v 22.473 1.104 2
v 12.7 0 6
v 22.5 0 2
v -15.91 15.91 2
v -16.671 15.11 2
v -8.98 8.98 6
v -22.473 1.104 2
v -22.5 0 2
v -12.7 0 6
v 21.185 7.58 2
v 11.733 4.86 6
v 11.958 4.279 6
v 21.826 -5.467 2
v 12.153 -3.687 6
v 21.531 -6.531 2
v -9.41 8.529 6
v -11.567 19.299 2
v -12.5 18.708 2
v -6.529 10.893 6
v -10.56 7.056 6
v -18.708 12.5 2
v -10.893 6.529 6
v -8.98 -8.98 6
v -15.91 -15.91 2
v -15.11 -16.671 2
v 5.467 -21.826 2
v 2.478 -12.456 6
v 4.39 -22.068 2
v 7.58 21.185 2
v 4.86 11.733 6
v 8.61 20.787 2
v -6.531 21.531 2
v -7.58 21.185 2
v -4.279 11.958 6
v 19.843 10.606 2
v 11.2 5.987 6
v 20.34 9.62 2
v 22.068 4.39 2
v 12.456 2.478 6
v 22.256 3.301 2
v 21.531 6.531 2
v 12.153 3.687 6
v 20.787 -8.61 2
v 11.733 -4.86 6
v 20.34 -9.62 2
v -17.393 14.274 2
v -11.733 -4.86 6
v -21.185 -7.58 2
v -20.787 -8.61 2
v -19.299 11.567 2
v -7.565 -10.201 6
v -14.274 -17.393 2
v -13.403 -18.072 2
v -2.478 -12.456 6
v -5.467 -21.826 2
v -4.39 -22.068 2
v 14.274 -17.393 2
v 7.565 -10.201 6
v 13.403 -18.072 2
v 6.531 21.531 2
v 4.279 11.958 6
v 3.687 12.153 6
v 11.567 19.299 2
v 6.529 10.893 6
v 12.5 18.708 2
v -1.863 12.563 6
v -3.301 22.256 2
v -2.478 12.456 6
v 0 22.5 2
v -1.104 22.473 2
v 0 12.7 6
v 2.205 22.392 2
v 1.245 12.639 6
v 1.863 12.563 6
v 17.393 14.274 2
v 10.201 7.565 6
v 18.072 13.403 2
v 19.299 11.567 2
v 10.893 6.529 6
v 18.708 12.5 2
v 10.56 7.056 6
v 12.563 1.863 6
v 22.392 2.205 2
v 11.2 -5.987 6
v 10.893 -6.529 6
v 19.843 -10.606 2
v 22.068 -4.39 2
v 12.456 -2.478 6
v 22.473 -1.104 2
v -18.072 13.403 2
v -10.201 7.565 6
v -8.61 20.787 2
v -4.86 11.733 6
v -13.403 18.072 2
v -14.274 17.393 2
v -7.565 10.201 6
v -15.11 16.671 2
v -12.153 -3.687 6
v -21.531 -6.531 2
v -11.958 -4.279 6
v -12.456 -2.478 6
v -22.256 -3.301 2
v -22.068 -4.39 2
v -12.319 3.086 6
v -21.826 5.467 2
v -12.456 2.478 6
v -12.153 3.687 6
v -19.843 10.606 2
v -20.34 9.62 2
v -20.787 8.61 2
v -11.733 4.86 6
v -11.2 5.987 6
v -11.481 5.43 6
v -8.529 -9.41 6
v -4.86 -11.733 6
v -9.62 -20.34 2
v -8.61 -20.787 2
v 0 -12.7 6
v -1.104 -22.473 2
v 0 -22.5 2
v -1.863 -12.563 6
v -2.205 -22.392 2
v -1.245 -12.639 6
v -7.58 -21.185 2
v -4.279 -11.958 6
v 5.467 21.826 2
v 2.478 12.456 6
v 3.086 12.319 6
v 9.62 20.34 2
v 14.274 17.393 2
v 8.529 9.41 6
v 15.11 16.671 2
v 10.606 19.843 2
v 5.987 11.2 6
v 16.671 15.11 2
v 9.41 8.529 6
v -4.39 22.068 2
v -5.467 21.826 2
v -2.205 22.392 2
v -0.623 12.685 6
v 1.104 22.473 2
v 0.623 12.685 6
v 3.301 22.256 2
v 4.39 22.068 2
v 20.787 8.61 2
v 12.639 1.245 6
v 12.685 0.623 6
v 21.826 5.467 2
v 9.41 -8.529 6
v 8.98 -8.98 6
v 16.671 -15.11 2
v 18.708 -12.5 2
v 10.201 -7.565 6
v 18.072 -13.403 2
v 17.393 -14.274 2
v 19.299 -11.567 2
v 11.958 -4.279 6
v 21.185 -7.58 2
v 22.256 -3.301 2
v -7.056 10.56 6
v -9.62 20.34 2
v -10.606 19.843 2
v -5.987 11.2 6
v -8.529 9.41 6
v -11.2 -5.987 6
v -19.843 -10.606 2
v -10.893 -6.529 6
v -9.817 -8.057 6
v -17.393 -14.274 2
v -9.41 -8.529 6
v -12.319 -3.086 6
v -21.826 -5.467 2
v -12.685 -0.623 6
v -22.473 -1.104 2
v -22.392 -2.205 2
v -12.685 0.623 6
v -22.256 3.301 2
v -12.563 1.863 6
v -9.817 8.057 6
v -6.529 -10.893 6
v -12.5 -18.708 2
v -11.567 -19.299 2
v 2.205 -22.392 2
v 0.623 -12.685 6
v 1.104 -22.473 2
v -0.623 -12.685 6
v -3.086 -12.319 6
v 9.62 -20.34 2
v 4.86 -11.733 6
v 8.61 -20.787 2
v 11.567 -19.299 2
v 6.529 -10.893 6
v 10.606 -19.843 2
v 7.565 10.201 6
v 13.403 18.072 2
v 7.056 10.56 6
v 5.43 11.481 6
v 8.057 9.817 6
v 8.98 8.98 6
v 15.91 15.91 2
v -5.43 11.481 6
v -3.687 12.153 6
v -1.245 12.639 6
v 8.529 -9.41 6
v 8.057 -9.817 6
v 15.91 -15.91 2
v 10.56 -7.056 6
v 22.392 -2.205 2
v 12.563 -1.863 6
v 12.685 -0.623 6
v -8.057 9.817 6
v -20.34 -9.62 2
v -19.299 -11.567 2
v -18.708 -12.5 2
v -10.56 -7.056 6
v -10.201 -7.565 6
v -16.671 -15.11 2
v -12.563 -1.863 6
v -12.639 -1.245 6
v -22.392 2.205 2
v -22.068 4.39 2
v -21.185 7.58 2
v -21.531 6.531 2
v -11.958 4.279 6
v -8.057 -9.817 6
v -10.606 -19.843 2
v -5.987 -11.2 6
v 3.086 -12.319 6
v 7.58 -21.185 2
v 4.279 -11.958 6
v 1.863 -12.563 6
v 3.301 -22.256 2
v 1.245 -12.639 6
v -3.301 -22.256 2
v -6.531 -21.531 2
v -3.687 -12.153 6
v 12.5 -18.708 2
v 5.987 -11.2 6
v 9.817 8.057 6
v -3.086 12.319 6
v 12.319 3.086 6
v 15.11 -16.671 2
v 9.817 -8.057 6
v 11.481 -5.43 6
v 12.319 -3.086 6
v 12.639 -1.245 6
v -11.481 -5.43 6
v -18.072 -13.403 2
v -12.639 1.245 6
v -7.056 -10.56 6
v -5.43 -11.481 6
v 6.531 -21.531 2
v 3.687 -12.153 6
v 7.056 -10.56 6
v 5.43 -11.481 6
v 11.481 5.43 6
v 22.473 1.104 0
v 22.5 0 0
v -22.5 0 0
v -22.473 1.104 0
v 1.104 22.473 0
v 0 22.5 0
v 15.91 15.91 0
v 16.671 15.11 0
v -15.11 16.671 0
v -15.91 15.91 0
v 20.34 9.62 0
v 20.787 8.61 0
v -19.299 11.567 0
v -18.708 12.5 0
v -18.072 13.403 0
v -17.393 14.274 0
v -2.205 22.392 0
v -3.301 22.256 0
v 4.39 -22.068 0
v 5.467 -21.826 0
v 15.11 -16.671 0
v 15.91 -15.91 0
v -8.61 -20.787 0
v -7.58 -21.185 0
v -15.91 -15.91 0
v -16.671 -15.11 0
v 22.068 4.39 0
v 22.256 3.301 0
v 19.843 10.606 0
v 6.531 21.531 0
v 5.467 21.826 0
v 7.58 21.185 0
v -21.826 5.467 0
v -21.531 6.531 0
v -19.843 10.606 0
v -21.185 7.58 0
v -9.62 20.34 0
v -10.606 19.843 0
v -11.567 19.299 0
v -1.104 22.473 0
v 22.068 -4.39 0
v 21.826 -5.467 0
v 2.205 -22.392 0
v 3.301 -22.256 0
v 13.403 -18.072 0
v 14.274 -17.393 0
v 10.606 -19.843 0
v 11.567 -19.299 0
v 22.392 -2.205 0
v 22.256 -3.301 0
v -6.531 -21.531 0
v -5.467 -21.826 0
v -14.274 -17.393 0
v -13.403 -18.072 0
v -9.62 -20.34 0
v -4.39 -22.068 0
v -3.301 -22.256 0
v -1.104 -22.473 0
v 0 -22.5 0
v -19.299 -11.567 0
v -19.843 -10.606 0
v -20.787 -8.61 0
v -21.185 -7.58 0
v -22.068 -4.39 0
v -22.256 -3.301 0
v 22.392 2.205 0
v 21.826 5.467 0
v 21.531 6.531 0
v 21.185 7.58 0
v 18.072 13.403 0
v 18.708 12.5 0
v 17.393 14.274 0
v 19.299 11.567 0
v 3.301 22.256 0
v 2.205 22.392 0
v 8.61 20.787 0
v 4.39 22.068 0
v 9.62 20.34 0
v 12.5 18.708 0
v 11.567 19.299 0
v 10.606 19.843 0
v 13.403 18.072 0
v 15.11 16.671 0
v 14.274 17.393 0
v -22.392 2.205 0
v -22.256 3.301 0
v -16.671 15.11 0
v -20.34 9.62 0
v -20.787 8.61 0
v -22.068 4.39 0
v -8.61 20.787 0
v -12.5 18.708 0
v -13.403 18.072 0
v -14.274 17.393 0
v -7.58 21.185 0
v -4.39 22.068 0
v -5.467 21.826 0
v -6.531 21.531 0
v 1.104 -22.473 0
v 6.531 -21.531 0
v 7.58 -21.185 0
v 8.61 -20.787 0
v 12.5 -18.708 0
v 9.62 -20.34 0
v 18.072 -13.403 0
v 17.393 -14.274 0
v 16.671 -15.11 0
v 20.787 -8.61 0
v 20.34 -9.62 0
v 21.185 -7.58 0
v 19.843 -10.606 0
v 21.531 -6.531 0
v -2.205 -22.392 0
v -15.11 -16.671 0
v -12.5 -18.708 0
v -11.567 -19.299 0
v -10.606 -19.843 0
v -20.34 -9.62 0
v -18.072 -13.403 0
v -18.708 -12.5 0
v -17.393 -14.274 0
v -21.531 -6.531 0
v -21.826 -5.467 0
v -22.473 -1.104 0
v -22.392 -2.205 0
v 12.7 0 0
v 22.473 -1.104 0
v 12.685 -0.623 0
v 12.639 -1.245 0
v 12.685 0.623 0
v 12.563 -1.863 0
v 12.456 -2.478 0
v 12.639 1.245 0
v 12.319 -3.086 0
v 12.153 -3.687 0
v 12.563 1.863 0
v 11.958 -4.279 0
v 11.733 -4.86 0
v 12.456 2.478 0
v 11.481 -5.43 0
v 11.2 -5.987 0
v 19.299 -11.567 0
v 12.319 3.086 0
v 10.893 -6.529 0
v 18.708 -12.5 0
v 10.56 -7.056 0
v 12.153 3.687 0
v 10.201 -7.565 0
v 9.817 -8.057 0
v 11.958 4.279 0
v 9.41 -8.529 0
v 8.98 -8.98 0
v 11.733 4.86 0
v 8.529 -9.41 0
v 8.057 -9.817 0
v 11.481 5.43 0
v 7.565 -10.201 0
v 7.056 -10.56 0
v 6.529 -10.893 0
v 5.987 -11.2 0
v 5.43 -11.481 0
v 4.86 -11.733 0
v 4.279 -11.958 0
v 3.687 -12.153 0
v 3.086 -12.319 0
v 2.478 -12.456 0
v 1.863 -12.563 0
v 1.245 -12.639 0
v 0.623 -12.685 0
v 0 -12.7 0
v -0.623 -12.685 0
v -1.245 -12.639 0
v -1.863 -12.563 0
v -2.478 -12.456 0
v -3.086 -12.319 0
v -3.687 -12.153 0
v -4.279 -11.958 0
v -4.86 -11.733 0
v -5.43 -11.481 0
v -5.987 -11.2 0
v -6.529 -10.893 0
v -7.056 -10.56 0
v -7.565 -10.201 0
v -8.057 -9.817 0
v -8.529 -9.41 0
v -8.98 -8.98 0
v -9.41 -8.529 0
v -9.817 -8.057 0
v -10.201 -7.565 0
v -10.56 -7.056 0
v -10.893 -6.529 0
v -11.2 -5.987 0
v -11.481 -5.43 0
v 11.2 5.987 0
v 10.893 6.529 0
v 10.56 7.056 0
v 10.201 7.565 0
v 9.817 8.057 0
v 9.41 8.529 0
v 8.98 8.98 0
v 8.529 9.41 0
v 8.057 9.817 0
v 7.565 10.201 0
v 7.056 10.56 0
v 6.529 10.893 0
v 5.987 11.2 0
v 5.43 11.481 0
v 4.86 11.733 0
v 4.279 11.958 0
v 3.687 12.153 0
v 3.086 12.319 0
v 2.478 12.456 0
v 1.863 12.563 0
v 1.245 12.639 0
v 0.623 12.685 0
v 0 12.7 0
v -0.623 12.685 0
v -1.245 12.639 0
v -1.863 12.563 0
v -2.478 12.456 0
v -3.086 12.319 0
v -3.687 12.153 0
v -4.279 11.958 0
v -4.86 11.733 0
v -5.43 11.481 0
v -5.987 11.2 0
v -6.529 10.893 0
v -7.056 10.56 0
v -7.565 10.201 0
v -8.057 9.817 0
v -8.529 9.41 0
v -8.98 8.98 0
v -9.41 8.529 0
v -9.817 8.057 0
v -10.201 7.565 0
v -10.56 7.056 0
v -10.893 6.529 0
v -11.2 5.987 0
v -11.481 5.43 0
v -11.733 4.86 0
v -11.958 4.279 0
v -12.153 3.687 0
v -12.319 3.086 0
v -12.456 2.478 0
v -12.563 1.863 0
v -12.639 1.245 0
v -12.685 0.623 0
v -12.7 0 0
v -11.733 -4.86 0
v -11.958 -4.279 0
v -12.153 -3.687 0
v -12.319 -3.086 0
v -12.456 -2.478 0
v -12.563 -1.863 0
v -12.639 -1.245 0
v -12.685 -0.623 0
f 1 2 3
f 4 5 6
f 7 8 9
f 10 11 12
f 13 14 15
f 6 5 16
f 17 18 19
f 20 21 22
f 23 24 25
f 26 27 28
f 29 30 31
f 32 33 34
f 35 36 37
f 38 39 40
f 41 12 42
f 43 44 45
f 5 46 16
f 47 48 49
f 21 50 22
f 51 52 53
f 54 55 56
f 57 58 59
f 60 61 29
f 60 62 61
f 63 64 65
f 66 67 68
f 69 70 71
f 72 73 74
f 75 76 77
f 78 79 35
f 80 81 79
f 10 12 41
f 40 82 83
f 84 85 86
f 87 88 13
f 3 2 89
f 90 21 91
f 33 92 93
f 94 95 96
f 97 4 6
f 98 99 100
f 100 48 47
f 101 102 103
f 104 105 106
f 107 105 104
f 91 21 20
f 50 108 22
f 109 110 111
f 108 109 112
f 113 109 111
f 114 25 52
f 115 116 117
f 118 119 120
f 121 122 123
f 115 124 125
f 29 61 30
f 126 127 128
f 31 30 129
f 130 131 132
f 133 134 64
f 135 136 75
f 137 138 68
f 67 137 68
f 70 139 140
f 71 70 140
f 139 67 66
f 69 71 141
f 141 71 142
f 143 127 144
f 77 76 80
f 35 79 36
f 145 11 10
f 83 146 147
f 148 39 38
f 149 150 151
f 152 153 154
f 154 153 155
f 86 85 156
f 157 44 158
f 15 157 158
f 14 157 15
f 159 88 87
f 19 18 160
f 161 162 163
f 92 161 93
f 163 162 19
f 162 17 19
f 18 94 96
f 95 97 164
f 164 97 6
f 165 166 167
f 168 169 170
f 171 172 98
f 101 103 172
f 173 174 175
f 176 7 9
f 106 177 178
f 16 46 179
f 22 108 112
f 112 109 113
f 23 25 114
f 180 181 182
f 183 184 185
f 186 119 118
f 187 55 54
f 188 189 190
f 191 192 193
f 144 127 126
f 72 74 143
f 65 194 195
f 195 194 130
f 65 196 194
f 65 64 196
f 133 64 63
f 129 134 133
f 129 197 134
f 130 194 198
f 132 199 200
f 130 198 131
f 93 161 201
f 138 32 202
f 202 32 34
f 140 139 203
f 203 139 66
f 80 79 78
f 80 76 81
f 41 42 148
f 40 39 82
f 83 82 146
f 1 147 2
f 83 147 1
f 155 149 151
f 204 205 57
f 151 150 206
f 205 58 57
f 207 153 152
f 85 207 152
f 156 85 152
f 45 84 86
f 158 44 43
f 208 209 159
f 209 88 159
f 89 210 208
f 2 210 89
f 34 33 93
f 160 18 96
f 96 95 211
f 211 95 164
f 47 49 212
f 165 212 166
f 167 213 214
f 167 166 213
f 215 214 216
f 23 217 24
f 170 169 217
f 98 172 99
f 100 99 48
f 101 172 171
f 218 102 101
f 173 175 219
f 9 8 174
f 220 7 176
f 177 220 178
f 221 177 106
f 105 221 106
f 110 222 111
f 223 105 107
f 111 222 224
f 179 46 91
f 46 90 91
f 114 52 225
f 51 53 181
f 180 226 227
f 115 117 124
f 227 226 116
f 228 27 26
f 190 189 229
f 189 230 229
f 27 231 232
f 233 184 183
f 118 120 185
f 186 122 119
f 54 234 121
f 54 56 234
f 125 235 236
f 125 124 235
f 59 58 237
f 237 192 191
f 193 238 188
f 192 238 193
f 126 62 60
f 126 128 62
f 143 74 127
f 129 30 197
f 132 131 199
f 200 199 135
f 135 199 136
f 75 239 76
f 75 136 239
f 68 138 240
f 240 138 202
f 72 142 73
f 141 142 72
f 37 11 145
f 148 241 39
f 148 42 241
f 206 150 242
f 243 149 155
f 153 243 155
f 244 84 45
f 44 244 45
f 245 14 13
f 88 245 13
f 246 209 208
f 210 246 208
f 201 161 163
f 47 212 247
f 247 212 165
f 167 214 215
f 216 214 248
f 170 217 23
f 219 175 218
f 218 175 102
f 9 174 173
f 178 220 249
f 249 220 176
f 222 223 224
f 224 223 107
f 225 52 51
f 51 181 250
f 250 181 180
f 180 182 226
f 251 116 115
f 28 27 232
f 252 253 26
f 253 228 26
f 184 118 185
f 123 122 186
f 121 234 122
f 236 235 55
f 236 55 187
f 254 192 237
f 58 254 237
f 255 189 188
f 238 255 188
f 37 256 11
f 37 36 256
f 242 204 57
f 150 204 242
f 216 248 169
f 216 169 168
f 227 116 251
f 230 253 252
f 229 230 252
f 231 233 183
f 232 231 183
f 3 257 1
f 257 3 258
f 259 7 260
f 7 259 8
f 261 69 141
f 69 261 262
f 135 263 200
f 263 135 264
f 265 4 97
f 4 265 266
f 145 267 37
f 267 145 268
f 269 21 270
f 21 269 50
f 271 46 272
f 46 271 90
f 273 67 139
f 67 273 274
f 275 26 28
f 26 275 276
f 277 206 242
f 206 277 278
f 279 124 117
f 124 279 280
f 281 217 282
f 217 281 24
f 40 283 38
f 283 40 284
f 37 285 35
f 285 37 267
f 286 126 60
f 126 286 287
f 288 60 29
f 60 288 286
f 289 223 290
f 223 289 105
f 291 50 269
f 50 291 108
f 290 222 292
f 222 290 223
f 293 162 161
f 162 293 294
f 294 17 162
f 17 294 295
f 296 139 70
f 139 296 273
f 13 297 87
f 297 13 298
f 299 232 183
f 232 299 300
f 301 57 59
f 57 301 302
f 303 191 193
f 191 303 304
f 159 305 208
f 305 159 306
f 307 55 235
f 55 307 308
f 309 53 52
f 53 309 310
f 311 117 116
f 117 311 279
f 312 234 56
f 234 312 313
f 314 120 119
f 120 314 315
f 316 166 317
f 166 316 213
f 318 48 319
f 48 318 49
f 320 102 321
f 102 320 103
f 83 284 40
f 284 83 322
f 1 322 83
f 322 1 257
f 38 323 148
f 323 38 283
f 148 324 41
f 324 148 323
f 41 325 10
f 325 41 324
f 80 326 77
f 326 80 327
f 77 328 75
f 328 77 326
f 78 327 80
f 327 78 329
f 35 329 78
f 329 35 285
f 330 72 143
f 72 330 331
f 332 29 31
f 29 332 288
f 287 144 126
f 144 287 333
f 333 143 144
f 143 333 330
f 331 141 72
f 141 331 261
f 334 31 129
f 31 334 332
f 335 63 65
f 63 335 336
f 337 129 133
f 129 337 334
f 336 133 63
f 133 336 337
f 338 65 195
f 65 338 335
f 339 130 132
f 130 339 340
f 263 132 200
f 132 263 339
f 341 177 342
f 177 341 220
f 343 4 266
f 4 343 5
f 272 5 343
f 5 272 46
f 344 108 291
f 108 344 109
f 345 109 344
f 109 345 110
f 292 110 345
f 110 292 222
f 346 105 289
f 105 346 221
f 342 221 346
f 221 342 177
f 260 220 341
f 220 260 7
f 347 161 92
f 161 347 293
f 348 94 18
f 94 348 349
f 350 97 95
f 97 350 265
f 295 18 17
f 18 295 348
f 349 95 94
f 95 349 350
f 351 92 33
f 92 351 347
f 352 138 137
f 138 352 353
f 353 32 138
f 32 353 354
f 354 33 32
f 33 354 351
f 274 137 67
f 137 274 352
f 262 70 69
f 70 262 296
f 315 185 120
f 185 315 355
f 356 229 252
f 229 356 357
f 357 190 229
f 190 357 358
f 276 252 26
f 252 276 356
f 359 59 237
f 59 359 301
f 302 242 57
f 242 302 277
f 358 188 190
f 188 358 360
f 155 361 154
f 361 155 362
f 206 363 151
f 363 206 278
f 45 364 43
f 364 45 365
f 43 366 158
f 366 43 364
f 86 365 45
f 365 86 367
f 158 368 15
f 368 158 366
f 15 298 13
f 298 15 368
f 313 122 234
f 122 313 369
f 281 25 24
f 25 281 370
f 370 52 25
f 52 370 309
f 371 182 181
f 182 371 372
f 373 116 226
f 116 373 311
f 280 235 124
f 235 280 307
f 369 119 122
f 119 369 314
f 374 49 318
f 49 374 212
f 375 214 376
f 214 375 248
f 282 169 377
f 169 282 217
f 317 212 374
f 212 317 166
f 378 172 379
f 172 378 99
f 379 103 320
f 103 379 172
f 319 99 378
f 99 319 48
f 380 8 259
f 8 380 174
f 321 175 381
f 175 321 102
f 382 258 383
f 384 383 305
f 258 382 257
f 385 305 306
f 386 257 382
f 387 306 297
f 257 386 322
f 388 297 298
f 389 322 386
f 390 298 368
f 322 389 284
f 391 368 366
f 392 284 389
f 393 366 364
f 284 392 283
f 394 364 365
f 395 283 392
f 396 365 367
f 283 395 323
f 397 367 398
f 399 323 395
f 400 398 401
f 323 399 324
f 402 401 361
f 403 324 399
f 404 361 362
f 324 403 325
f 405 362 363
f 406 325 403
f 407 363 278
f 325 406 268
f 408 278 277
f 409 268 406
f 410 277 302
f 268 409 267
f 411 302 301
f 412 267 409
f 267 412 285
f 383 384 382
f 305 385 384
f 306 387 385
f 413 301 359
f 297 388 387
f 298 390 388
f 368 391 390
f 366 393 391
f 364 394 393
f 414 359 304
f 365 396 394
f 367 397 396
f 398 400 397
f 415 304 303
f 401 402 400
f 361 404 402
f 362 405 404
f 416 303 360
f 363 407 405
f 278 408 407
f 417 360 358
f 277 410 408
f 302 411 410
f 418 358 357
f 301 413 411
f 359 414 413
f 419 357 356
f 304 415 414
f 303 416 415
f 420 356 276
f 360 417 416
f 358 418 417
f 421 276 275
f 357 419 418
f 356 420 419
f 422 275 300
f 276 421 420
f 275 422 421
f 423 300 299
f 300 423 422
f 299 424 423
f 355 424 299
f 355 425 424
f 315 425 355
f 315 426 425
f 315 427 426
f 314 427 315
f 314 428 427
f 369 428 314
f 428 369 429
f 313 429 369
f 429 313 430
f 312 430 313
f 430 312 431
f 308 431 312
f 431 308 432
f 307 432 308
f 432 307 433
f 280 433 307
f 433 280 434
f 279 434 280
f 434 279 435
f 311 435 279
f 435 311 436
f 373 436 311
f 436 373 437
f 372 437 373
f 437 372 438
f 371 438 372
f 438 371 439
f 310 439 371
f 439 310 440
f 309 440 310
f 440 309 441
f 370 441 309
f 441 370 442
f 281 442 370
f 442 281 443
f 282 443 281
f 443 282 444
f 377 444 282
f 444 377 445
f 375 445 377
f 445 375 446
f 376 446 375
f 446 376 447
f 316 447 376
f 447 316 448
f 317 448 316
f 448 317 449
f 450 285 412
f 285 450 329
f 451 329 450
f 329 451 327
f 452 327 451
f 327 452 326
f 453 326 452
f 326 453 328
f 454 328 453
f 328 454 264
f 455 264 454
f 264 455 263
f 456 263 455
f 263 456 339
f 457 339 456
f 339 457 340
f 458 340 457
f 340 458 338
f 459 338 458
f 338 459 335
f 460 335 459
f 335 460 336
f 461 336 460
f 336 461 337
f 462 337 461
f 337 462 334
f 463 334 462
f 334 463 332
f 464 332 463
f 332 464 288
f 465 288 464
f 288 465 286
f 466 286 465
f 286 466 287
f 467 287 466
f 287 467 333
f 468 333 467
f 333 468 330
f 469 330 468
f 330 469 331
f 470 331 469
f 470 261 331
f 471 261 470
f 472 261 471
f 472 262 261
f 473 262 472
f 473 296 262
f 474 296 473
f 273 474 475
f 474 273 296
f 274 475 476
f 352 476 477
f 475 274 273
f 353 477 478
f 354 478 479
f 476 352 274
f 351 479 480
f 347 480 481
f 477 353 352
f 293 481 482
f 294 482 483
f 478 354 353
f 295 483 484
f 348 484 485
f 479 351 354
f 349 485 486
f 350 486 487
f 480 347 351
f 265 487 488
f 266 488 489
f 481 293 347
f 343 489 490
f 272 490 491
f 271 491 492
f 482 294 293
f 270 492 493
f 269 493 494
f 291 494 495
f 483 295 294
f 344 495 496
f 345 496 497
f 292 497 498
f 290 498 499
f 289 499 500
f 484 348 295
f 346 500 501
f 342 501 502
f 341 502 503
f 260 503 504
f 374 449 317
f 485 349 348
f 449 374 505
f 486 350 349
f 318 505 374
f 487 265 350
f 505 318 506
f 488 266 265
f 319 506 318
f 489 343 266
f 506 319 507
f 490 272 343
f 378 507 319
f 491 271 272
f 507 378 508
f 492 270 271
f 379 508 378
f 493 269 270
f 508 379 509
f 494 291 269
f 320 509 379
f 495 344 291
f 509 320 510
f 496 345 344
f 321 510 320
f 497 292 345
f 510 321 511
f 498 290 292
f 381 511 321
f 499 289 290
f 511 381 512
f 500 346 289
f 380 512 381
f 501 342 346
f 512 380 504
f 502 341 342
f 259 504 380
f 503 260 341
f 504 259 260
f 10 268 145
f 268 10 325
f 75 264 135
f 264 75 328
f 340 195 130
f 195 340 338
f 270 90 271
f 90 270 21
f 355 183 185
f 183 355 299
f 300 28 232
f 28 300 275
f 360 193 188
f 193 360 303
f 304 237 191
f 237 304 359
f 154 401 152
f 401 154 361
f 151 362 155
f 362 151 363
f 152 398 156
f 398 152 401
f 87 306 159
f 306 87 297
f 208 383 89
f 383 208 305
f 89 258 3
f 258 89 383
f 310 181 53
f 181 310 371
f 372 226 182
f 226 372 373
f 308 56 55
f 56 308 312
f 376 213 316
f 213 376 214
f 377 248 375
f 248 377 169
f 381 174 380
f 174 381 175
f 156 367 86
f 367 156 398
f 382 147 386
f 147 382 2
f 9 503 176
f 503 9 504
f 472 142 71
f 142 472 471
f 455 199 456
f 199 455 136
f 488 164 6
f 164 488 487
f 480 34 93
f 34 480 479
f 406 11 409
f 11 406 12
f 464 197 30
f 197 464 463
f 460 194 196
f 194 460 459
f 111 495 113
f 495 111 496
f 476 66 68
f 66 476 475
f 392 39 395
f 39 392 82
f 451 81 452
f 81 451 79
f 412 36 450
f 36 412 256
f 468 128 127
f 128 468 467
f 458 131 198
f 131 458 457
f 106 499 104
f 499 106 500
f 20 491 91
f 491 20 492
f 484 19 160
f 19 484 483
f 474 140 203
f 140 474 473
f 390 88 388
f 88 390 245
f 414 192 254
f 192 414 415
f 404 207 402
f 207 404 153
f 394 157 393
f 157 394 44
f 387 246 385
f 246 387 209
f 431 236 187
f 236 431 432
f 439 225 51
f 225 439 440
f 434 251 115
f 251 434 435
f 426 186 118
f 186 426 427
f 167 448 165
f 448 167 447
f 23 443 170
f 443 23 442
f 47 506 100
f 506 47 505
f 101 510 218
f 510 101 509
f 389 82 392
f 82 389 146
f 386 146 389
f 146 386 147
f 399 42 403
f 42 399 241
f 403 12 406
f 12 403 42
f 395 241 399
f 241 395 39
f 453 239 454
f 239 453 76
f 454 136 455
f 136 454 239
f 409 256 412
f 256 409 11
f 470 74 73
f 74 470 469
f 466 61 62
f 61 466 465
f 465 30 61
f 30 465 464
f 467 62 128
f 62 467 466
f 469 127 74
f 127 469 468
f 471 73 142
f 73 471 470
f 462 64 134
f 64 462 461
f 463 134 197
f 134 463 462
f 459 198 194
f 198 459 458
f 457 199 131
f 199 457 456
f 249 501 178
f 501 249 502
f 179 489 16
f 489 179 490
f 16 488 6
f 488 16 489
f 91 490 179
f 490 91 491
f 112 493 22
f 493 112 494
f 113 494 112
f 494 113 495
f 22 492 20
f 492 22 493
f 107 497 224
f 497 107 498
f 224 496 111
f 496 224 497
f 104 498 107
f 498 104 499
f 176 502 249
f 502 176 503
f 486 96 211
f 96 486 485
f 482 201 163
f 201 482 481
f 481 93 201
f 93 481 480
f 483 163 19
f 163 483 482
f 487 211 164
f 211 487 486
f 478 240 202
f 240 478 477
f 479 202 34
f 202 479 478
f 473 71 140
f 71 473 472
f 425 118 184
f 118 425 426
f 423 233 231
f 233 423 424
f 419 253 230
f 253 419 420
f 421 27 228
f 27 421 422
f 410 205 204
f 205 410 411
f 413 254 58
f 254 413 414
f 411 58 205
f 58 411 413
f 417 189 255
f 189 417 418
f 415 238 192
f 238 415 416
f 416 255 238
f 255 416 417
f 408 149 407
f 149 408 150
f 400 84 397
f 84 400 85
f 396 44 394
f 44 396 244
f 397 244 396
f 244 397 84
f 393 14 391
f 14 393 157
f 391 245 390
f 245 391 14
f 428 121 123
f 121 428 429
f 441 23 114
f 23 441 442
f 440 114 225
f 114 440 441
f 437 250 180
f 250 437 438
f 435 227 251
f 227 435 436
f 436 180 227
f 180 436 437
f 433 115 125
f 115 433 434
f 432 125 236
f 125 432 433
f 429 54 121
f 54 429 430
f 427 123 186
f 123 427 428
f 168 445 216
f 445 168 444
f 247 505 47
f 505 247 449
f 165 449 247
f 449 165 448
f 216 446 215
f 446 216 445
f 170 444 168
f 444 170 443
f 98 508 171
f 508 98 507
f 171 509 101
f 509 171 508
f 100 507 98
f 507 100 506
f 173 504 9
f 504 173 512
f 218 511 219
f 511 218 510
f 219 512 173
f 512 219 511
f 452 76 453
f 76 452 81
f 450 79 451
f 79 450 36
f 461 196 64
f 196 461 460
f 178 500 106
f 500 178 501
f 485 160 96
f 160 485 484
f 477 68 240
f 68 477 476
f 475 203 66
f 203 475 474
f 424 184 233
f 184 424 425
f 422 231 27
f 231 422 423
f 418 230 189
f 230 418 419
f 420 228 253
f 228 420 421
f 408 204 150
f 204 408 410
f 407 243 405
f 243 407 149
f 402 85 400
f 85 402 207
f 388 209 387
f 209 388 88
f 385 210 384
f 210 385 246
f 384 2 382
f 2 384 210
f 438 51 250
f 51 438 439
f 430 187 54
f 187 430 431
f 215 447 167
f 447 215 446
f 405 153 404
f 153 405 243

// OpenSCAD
// =========================================================
// Exact Recreation of Existing Hub (spinnerbearing.stl)
// With Simplified Solid Circular Flange
// =========================================================

$fn = 128; // Smooth circular curves

// --- Outer Dimensions ---
flange_od       = 45.0;  // 25.0mm radius
flange_h        = 4.0;   // Z = 0 to 3mm
rim_h = 2.0; 
barrel_od       = 25.4;  // 12.7mm radius (1 inch)
total_h         = 25.0;  // Z = 0 to 23mm

// --- Internal Bearing Dimensions ---
bearing_od      = 22.4;  // 11.2mm radius (608 press-fit)
bearing_depth   = 7.0;   // 608 bearing thickness
spacer_id       = 19.4;  // 9.7mm radius internal shoulder

difference() {
    // 1. Solid Outer Body
    union() {
        // Bottom mounting flange (solid circle)
        translate([0, 0, rim_h])
        cylinder(d1 = flange_od,d2=barrel_od, h = flange_h);
        
        cylinder(d = flange_od, h = rim_h);
        
        // Main 1-inch barrel
    //    cylinder(d = barrel_od, h = total_h - bearing_depth);
        
    //    cylinder(d = bearing_od, h= total_h );
    }

    // 2. Internal Cutouts
    // Through-bore for the center spacer lip (Z = 0 to 23mm)
//    translate([0, 0, -1])
//        cylinder(d = spacer_id, h = total_h + 2);
    
        translate([0, 0, -1])
        cylinder(d = barrel_od, h = total_h + 2);

    // Bottom 608 bearing pocket (Z = 0 to 7mm)
 //   translate([0, 0, -0.01])
  //      cylinder(d = bearing_od, h = bearing_depth + 0.01);

    // Top 608 bearing pocket (Z = 16 to 23mm)
   // translate([0, 0, total_h - bearing_depth])
    //    cylinder(d = bearing_od, h = bearing_depth + 0.01);
}
